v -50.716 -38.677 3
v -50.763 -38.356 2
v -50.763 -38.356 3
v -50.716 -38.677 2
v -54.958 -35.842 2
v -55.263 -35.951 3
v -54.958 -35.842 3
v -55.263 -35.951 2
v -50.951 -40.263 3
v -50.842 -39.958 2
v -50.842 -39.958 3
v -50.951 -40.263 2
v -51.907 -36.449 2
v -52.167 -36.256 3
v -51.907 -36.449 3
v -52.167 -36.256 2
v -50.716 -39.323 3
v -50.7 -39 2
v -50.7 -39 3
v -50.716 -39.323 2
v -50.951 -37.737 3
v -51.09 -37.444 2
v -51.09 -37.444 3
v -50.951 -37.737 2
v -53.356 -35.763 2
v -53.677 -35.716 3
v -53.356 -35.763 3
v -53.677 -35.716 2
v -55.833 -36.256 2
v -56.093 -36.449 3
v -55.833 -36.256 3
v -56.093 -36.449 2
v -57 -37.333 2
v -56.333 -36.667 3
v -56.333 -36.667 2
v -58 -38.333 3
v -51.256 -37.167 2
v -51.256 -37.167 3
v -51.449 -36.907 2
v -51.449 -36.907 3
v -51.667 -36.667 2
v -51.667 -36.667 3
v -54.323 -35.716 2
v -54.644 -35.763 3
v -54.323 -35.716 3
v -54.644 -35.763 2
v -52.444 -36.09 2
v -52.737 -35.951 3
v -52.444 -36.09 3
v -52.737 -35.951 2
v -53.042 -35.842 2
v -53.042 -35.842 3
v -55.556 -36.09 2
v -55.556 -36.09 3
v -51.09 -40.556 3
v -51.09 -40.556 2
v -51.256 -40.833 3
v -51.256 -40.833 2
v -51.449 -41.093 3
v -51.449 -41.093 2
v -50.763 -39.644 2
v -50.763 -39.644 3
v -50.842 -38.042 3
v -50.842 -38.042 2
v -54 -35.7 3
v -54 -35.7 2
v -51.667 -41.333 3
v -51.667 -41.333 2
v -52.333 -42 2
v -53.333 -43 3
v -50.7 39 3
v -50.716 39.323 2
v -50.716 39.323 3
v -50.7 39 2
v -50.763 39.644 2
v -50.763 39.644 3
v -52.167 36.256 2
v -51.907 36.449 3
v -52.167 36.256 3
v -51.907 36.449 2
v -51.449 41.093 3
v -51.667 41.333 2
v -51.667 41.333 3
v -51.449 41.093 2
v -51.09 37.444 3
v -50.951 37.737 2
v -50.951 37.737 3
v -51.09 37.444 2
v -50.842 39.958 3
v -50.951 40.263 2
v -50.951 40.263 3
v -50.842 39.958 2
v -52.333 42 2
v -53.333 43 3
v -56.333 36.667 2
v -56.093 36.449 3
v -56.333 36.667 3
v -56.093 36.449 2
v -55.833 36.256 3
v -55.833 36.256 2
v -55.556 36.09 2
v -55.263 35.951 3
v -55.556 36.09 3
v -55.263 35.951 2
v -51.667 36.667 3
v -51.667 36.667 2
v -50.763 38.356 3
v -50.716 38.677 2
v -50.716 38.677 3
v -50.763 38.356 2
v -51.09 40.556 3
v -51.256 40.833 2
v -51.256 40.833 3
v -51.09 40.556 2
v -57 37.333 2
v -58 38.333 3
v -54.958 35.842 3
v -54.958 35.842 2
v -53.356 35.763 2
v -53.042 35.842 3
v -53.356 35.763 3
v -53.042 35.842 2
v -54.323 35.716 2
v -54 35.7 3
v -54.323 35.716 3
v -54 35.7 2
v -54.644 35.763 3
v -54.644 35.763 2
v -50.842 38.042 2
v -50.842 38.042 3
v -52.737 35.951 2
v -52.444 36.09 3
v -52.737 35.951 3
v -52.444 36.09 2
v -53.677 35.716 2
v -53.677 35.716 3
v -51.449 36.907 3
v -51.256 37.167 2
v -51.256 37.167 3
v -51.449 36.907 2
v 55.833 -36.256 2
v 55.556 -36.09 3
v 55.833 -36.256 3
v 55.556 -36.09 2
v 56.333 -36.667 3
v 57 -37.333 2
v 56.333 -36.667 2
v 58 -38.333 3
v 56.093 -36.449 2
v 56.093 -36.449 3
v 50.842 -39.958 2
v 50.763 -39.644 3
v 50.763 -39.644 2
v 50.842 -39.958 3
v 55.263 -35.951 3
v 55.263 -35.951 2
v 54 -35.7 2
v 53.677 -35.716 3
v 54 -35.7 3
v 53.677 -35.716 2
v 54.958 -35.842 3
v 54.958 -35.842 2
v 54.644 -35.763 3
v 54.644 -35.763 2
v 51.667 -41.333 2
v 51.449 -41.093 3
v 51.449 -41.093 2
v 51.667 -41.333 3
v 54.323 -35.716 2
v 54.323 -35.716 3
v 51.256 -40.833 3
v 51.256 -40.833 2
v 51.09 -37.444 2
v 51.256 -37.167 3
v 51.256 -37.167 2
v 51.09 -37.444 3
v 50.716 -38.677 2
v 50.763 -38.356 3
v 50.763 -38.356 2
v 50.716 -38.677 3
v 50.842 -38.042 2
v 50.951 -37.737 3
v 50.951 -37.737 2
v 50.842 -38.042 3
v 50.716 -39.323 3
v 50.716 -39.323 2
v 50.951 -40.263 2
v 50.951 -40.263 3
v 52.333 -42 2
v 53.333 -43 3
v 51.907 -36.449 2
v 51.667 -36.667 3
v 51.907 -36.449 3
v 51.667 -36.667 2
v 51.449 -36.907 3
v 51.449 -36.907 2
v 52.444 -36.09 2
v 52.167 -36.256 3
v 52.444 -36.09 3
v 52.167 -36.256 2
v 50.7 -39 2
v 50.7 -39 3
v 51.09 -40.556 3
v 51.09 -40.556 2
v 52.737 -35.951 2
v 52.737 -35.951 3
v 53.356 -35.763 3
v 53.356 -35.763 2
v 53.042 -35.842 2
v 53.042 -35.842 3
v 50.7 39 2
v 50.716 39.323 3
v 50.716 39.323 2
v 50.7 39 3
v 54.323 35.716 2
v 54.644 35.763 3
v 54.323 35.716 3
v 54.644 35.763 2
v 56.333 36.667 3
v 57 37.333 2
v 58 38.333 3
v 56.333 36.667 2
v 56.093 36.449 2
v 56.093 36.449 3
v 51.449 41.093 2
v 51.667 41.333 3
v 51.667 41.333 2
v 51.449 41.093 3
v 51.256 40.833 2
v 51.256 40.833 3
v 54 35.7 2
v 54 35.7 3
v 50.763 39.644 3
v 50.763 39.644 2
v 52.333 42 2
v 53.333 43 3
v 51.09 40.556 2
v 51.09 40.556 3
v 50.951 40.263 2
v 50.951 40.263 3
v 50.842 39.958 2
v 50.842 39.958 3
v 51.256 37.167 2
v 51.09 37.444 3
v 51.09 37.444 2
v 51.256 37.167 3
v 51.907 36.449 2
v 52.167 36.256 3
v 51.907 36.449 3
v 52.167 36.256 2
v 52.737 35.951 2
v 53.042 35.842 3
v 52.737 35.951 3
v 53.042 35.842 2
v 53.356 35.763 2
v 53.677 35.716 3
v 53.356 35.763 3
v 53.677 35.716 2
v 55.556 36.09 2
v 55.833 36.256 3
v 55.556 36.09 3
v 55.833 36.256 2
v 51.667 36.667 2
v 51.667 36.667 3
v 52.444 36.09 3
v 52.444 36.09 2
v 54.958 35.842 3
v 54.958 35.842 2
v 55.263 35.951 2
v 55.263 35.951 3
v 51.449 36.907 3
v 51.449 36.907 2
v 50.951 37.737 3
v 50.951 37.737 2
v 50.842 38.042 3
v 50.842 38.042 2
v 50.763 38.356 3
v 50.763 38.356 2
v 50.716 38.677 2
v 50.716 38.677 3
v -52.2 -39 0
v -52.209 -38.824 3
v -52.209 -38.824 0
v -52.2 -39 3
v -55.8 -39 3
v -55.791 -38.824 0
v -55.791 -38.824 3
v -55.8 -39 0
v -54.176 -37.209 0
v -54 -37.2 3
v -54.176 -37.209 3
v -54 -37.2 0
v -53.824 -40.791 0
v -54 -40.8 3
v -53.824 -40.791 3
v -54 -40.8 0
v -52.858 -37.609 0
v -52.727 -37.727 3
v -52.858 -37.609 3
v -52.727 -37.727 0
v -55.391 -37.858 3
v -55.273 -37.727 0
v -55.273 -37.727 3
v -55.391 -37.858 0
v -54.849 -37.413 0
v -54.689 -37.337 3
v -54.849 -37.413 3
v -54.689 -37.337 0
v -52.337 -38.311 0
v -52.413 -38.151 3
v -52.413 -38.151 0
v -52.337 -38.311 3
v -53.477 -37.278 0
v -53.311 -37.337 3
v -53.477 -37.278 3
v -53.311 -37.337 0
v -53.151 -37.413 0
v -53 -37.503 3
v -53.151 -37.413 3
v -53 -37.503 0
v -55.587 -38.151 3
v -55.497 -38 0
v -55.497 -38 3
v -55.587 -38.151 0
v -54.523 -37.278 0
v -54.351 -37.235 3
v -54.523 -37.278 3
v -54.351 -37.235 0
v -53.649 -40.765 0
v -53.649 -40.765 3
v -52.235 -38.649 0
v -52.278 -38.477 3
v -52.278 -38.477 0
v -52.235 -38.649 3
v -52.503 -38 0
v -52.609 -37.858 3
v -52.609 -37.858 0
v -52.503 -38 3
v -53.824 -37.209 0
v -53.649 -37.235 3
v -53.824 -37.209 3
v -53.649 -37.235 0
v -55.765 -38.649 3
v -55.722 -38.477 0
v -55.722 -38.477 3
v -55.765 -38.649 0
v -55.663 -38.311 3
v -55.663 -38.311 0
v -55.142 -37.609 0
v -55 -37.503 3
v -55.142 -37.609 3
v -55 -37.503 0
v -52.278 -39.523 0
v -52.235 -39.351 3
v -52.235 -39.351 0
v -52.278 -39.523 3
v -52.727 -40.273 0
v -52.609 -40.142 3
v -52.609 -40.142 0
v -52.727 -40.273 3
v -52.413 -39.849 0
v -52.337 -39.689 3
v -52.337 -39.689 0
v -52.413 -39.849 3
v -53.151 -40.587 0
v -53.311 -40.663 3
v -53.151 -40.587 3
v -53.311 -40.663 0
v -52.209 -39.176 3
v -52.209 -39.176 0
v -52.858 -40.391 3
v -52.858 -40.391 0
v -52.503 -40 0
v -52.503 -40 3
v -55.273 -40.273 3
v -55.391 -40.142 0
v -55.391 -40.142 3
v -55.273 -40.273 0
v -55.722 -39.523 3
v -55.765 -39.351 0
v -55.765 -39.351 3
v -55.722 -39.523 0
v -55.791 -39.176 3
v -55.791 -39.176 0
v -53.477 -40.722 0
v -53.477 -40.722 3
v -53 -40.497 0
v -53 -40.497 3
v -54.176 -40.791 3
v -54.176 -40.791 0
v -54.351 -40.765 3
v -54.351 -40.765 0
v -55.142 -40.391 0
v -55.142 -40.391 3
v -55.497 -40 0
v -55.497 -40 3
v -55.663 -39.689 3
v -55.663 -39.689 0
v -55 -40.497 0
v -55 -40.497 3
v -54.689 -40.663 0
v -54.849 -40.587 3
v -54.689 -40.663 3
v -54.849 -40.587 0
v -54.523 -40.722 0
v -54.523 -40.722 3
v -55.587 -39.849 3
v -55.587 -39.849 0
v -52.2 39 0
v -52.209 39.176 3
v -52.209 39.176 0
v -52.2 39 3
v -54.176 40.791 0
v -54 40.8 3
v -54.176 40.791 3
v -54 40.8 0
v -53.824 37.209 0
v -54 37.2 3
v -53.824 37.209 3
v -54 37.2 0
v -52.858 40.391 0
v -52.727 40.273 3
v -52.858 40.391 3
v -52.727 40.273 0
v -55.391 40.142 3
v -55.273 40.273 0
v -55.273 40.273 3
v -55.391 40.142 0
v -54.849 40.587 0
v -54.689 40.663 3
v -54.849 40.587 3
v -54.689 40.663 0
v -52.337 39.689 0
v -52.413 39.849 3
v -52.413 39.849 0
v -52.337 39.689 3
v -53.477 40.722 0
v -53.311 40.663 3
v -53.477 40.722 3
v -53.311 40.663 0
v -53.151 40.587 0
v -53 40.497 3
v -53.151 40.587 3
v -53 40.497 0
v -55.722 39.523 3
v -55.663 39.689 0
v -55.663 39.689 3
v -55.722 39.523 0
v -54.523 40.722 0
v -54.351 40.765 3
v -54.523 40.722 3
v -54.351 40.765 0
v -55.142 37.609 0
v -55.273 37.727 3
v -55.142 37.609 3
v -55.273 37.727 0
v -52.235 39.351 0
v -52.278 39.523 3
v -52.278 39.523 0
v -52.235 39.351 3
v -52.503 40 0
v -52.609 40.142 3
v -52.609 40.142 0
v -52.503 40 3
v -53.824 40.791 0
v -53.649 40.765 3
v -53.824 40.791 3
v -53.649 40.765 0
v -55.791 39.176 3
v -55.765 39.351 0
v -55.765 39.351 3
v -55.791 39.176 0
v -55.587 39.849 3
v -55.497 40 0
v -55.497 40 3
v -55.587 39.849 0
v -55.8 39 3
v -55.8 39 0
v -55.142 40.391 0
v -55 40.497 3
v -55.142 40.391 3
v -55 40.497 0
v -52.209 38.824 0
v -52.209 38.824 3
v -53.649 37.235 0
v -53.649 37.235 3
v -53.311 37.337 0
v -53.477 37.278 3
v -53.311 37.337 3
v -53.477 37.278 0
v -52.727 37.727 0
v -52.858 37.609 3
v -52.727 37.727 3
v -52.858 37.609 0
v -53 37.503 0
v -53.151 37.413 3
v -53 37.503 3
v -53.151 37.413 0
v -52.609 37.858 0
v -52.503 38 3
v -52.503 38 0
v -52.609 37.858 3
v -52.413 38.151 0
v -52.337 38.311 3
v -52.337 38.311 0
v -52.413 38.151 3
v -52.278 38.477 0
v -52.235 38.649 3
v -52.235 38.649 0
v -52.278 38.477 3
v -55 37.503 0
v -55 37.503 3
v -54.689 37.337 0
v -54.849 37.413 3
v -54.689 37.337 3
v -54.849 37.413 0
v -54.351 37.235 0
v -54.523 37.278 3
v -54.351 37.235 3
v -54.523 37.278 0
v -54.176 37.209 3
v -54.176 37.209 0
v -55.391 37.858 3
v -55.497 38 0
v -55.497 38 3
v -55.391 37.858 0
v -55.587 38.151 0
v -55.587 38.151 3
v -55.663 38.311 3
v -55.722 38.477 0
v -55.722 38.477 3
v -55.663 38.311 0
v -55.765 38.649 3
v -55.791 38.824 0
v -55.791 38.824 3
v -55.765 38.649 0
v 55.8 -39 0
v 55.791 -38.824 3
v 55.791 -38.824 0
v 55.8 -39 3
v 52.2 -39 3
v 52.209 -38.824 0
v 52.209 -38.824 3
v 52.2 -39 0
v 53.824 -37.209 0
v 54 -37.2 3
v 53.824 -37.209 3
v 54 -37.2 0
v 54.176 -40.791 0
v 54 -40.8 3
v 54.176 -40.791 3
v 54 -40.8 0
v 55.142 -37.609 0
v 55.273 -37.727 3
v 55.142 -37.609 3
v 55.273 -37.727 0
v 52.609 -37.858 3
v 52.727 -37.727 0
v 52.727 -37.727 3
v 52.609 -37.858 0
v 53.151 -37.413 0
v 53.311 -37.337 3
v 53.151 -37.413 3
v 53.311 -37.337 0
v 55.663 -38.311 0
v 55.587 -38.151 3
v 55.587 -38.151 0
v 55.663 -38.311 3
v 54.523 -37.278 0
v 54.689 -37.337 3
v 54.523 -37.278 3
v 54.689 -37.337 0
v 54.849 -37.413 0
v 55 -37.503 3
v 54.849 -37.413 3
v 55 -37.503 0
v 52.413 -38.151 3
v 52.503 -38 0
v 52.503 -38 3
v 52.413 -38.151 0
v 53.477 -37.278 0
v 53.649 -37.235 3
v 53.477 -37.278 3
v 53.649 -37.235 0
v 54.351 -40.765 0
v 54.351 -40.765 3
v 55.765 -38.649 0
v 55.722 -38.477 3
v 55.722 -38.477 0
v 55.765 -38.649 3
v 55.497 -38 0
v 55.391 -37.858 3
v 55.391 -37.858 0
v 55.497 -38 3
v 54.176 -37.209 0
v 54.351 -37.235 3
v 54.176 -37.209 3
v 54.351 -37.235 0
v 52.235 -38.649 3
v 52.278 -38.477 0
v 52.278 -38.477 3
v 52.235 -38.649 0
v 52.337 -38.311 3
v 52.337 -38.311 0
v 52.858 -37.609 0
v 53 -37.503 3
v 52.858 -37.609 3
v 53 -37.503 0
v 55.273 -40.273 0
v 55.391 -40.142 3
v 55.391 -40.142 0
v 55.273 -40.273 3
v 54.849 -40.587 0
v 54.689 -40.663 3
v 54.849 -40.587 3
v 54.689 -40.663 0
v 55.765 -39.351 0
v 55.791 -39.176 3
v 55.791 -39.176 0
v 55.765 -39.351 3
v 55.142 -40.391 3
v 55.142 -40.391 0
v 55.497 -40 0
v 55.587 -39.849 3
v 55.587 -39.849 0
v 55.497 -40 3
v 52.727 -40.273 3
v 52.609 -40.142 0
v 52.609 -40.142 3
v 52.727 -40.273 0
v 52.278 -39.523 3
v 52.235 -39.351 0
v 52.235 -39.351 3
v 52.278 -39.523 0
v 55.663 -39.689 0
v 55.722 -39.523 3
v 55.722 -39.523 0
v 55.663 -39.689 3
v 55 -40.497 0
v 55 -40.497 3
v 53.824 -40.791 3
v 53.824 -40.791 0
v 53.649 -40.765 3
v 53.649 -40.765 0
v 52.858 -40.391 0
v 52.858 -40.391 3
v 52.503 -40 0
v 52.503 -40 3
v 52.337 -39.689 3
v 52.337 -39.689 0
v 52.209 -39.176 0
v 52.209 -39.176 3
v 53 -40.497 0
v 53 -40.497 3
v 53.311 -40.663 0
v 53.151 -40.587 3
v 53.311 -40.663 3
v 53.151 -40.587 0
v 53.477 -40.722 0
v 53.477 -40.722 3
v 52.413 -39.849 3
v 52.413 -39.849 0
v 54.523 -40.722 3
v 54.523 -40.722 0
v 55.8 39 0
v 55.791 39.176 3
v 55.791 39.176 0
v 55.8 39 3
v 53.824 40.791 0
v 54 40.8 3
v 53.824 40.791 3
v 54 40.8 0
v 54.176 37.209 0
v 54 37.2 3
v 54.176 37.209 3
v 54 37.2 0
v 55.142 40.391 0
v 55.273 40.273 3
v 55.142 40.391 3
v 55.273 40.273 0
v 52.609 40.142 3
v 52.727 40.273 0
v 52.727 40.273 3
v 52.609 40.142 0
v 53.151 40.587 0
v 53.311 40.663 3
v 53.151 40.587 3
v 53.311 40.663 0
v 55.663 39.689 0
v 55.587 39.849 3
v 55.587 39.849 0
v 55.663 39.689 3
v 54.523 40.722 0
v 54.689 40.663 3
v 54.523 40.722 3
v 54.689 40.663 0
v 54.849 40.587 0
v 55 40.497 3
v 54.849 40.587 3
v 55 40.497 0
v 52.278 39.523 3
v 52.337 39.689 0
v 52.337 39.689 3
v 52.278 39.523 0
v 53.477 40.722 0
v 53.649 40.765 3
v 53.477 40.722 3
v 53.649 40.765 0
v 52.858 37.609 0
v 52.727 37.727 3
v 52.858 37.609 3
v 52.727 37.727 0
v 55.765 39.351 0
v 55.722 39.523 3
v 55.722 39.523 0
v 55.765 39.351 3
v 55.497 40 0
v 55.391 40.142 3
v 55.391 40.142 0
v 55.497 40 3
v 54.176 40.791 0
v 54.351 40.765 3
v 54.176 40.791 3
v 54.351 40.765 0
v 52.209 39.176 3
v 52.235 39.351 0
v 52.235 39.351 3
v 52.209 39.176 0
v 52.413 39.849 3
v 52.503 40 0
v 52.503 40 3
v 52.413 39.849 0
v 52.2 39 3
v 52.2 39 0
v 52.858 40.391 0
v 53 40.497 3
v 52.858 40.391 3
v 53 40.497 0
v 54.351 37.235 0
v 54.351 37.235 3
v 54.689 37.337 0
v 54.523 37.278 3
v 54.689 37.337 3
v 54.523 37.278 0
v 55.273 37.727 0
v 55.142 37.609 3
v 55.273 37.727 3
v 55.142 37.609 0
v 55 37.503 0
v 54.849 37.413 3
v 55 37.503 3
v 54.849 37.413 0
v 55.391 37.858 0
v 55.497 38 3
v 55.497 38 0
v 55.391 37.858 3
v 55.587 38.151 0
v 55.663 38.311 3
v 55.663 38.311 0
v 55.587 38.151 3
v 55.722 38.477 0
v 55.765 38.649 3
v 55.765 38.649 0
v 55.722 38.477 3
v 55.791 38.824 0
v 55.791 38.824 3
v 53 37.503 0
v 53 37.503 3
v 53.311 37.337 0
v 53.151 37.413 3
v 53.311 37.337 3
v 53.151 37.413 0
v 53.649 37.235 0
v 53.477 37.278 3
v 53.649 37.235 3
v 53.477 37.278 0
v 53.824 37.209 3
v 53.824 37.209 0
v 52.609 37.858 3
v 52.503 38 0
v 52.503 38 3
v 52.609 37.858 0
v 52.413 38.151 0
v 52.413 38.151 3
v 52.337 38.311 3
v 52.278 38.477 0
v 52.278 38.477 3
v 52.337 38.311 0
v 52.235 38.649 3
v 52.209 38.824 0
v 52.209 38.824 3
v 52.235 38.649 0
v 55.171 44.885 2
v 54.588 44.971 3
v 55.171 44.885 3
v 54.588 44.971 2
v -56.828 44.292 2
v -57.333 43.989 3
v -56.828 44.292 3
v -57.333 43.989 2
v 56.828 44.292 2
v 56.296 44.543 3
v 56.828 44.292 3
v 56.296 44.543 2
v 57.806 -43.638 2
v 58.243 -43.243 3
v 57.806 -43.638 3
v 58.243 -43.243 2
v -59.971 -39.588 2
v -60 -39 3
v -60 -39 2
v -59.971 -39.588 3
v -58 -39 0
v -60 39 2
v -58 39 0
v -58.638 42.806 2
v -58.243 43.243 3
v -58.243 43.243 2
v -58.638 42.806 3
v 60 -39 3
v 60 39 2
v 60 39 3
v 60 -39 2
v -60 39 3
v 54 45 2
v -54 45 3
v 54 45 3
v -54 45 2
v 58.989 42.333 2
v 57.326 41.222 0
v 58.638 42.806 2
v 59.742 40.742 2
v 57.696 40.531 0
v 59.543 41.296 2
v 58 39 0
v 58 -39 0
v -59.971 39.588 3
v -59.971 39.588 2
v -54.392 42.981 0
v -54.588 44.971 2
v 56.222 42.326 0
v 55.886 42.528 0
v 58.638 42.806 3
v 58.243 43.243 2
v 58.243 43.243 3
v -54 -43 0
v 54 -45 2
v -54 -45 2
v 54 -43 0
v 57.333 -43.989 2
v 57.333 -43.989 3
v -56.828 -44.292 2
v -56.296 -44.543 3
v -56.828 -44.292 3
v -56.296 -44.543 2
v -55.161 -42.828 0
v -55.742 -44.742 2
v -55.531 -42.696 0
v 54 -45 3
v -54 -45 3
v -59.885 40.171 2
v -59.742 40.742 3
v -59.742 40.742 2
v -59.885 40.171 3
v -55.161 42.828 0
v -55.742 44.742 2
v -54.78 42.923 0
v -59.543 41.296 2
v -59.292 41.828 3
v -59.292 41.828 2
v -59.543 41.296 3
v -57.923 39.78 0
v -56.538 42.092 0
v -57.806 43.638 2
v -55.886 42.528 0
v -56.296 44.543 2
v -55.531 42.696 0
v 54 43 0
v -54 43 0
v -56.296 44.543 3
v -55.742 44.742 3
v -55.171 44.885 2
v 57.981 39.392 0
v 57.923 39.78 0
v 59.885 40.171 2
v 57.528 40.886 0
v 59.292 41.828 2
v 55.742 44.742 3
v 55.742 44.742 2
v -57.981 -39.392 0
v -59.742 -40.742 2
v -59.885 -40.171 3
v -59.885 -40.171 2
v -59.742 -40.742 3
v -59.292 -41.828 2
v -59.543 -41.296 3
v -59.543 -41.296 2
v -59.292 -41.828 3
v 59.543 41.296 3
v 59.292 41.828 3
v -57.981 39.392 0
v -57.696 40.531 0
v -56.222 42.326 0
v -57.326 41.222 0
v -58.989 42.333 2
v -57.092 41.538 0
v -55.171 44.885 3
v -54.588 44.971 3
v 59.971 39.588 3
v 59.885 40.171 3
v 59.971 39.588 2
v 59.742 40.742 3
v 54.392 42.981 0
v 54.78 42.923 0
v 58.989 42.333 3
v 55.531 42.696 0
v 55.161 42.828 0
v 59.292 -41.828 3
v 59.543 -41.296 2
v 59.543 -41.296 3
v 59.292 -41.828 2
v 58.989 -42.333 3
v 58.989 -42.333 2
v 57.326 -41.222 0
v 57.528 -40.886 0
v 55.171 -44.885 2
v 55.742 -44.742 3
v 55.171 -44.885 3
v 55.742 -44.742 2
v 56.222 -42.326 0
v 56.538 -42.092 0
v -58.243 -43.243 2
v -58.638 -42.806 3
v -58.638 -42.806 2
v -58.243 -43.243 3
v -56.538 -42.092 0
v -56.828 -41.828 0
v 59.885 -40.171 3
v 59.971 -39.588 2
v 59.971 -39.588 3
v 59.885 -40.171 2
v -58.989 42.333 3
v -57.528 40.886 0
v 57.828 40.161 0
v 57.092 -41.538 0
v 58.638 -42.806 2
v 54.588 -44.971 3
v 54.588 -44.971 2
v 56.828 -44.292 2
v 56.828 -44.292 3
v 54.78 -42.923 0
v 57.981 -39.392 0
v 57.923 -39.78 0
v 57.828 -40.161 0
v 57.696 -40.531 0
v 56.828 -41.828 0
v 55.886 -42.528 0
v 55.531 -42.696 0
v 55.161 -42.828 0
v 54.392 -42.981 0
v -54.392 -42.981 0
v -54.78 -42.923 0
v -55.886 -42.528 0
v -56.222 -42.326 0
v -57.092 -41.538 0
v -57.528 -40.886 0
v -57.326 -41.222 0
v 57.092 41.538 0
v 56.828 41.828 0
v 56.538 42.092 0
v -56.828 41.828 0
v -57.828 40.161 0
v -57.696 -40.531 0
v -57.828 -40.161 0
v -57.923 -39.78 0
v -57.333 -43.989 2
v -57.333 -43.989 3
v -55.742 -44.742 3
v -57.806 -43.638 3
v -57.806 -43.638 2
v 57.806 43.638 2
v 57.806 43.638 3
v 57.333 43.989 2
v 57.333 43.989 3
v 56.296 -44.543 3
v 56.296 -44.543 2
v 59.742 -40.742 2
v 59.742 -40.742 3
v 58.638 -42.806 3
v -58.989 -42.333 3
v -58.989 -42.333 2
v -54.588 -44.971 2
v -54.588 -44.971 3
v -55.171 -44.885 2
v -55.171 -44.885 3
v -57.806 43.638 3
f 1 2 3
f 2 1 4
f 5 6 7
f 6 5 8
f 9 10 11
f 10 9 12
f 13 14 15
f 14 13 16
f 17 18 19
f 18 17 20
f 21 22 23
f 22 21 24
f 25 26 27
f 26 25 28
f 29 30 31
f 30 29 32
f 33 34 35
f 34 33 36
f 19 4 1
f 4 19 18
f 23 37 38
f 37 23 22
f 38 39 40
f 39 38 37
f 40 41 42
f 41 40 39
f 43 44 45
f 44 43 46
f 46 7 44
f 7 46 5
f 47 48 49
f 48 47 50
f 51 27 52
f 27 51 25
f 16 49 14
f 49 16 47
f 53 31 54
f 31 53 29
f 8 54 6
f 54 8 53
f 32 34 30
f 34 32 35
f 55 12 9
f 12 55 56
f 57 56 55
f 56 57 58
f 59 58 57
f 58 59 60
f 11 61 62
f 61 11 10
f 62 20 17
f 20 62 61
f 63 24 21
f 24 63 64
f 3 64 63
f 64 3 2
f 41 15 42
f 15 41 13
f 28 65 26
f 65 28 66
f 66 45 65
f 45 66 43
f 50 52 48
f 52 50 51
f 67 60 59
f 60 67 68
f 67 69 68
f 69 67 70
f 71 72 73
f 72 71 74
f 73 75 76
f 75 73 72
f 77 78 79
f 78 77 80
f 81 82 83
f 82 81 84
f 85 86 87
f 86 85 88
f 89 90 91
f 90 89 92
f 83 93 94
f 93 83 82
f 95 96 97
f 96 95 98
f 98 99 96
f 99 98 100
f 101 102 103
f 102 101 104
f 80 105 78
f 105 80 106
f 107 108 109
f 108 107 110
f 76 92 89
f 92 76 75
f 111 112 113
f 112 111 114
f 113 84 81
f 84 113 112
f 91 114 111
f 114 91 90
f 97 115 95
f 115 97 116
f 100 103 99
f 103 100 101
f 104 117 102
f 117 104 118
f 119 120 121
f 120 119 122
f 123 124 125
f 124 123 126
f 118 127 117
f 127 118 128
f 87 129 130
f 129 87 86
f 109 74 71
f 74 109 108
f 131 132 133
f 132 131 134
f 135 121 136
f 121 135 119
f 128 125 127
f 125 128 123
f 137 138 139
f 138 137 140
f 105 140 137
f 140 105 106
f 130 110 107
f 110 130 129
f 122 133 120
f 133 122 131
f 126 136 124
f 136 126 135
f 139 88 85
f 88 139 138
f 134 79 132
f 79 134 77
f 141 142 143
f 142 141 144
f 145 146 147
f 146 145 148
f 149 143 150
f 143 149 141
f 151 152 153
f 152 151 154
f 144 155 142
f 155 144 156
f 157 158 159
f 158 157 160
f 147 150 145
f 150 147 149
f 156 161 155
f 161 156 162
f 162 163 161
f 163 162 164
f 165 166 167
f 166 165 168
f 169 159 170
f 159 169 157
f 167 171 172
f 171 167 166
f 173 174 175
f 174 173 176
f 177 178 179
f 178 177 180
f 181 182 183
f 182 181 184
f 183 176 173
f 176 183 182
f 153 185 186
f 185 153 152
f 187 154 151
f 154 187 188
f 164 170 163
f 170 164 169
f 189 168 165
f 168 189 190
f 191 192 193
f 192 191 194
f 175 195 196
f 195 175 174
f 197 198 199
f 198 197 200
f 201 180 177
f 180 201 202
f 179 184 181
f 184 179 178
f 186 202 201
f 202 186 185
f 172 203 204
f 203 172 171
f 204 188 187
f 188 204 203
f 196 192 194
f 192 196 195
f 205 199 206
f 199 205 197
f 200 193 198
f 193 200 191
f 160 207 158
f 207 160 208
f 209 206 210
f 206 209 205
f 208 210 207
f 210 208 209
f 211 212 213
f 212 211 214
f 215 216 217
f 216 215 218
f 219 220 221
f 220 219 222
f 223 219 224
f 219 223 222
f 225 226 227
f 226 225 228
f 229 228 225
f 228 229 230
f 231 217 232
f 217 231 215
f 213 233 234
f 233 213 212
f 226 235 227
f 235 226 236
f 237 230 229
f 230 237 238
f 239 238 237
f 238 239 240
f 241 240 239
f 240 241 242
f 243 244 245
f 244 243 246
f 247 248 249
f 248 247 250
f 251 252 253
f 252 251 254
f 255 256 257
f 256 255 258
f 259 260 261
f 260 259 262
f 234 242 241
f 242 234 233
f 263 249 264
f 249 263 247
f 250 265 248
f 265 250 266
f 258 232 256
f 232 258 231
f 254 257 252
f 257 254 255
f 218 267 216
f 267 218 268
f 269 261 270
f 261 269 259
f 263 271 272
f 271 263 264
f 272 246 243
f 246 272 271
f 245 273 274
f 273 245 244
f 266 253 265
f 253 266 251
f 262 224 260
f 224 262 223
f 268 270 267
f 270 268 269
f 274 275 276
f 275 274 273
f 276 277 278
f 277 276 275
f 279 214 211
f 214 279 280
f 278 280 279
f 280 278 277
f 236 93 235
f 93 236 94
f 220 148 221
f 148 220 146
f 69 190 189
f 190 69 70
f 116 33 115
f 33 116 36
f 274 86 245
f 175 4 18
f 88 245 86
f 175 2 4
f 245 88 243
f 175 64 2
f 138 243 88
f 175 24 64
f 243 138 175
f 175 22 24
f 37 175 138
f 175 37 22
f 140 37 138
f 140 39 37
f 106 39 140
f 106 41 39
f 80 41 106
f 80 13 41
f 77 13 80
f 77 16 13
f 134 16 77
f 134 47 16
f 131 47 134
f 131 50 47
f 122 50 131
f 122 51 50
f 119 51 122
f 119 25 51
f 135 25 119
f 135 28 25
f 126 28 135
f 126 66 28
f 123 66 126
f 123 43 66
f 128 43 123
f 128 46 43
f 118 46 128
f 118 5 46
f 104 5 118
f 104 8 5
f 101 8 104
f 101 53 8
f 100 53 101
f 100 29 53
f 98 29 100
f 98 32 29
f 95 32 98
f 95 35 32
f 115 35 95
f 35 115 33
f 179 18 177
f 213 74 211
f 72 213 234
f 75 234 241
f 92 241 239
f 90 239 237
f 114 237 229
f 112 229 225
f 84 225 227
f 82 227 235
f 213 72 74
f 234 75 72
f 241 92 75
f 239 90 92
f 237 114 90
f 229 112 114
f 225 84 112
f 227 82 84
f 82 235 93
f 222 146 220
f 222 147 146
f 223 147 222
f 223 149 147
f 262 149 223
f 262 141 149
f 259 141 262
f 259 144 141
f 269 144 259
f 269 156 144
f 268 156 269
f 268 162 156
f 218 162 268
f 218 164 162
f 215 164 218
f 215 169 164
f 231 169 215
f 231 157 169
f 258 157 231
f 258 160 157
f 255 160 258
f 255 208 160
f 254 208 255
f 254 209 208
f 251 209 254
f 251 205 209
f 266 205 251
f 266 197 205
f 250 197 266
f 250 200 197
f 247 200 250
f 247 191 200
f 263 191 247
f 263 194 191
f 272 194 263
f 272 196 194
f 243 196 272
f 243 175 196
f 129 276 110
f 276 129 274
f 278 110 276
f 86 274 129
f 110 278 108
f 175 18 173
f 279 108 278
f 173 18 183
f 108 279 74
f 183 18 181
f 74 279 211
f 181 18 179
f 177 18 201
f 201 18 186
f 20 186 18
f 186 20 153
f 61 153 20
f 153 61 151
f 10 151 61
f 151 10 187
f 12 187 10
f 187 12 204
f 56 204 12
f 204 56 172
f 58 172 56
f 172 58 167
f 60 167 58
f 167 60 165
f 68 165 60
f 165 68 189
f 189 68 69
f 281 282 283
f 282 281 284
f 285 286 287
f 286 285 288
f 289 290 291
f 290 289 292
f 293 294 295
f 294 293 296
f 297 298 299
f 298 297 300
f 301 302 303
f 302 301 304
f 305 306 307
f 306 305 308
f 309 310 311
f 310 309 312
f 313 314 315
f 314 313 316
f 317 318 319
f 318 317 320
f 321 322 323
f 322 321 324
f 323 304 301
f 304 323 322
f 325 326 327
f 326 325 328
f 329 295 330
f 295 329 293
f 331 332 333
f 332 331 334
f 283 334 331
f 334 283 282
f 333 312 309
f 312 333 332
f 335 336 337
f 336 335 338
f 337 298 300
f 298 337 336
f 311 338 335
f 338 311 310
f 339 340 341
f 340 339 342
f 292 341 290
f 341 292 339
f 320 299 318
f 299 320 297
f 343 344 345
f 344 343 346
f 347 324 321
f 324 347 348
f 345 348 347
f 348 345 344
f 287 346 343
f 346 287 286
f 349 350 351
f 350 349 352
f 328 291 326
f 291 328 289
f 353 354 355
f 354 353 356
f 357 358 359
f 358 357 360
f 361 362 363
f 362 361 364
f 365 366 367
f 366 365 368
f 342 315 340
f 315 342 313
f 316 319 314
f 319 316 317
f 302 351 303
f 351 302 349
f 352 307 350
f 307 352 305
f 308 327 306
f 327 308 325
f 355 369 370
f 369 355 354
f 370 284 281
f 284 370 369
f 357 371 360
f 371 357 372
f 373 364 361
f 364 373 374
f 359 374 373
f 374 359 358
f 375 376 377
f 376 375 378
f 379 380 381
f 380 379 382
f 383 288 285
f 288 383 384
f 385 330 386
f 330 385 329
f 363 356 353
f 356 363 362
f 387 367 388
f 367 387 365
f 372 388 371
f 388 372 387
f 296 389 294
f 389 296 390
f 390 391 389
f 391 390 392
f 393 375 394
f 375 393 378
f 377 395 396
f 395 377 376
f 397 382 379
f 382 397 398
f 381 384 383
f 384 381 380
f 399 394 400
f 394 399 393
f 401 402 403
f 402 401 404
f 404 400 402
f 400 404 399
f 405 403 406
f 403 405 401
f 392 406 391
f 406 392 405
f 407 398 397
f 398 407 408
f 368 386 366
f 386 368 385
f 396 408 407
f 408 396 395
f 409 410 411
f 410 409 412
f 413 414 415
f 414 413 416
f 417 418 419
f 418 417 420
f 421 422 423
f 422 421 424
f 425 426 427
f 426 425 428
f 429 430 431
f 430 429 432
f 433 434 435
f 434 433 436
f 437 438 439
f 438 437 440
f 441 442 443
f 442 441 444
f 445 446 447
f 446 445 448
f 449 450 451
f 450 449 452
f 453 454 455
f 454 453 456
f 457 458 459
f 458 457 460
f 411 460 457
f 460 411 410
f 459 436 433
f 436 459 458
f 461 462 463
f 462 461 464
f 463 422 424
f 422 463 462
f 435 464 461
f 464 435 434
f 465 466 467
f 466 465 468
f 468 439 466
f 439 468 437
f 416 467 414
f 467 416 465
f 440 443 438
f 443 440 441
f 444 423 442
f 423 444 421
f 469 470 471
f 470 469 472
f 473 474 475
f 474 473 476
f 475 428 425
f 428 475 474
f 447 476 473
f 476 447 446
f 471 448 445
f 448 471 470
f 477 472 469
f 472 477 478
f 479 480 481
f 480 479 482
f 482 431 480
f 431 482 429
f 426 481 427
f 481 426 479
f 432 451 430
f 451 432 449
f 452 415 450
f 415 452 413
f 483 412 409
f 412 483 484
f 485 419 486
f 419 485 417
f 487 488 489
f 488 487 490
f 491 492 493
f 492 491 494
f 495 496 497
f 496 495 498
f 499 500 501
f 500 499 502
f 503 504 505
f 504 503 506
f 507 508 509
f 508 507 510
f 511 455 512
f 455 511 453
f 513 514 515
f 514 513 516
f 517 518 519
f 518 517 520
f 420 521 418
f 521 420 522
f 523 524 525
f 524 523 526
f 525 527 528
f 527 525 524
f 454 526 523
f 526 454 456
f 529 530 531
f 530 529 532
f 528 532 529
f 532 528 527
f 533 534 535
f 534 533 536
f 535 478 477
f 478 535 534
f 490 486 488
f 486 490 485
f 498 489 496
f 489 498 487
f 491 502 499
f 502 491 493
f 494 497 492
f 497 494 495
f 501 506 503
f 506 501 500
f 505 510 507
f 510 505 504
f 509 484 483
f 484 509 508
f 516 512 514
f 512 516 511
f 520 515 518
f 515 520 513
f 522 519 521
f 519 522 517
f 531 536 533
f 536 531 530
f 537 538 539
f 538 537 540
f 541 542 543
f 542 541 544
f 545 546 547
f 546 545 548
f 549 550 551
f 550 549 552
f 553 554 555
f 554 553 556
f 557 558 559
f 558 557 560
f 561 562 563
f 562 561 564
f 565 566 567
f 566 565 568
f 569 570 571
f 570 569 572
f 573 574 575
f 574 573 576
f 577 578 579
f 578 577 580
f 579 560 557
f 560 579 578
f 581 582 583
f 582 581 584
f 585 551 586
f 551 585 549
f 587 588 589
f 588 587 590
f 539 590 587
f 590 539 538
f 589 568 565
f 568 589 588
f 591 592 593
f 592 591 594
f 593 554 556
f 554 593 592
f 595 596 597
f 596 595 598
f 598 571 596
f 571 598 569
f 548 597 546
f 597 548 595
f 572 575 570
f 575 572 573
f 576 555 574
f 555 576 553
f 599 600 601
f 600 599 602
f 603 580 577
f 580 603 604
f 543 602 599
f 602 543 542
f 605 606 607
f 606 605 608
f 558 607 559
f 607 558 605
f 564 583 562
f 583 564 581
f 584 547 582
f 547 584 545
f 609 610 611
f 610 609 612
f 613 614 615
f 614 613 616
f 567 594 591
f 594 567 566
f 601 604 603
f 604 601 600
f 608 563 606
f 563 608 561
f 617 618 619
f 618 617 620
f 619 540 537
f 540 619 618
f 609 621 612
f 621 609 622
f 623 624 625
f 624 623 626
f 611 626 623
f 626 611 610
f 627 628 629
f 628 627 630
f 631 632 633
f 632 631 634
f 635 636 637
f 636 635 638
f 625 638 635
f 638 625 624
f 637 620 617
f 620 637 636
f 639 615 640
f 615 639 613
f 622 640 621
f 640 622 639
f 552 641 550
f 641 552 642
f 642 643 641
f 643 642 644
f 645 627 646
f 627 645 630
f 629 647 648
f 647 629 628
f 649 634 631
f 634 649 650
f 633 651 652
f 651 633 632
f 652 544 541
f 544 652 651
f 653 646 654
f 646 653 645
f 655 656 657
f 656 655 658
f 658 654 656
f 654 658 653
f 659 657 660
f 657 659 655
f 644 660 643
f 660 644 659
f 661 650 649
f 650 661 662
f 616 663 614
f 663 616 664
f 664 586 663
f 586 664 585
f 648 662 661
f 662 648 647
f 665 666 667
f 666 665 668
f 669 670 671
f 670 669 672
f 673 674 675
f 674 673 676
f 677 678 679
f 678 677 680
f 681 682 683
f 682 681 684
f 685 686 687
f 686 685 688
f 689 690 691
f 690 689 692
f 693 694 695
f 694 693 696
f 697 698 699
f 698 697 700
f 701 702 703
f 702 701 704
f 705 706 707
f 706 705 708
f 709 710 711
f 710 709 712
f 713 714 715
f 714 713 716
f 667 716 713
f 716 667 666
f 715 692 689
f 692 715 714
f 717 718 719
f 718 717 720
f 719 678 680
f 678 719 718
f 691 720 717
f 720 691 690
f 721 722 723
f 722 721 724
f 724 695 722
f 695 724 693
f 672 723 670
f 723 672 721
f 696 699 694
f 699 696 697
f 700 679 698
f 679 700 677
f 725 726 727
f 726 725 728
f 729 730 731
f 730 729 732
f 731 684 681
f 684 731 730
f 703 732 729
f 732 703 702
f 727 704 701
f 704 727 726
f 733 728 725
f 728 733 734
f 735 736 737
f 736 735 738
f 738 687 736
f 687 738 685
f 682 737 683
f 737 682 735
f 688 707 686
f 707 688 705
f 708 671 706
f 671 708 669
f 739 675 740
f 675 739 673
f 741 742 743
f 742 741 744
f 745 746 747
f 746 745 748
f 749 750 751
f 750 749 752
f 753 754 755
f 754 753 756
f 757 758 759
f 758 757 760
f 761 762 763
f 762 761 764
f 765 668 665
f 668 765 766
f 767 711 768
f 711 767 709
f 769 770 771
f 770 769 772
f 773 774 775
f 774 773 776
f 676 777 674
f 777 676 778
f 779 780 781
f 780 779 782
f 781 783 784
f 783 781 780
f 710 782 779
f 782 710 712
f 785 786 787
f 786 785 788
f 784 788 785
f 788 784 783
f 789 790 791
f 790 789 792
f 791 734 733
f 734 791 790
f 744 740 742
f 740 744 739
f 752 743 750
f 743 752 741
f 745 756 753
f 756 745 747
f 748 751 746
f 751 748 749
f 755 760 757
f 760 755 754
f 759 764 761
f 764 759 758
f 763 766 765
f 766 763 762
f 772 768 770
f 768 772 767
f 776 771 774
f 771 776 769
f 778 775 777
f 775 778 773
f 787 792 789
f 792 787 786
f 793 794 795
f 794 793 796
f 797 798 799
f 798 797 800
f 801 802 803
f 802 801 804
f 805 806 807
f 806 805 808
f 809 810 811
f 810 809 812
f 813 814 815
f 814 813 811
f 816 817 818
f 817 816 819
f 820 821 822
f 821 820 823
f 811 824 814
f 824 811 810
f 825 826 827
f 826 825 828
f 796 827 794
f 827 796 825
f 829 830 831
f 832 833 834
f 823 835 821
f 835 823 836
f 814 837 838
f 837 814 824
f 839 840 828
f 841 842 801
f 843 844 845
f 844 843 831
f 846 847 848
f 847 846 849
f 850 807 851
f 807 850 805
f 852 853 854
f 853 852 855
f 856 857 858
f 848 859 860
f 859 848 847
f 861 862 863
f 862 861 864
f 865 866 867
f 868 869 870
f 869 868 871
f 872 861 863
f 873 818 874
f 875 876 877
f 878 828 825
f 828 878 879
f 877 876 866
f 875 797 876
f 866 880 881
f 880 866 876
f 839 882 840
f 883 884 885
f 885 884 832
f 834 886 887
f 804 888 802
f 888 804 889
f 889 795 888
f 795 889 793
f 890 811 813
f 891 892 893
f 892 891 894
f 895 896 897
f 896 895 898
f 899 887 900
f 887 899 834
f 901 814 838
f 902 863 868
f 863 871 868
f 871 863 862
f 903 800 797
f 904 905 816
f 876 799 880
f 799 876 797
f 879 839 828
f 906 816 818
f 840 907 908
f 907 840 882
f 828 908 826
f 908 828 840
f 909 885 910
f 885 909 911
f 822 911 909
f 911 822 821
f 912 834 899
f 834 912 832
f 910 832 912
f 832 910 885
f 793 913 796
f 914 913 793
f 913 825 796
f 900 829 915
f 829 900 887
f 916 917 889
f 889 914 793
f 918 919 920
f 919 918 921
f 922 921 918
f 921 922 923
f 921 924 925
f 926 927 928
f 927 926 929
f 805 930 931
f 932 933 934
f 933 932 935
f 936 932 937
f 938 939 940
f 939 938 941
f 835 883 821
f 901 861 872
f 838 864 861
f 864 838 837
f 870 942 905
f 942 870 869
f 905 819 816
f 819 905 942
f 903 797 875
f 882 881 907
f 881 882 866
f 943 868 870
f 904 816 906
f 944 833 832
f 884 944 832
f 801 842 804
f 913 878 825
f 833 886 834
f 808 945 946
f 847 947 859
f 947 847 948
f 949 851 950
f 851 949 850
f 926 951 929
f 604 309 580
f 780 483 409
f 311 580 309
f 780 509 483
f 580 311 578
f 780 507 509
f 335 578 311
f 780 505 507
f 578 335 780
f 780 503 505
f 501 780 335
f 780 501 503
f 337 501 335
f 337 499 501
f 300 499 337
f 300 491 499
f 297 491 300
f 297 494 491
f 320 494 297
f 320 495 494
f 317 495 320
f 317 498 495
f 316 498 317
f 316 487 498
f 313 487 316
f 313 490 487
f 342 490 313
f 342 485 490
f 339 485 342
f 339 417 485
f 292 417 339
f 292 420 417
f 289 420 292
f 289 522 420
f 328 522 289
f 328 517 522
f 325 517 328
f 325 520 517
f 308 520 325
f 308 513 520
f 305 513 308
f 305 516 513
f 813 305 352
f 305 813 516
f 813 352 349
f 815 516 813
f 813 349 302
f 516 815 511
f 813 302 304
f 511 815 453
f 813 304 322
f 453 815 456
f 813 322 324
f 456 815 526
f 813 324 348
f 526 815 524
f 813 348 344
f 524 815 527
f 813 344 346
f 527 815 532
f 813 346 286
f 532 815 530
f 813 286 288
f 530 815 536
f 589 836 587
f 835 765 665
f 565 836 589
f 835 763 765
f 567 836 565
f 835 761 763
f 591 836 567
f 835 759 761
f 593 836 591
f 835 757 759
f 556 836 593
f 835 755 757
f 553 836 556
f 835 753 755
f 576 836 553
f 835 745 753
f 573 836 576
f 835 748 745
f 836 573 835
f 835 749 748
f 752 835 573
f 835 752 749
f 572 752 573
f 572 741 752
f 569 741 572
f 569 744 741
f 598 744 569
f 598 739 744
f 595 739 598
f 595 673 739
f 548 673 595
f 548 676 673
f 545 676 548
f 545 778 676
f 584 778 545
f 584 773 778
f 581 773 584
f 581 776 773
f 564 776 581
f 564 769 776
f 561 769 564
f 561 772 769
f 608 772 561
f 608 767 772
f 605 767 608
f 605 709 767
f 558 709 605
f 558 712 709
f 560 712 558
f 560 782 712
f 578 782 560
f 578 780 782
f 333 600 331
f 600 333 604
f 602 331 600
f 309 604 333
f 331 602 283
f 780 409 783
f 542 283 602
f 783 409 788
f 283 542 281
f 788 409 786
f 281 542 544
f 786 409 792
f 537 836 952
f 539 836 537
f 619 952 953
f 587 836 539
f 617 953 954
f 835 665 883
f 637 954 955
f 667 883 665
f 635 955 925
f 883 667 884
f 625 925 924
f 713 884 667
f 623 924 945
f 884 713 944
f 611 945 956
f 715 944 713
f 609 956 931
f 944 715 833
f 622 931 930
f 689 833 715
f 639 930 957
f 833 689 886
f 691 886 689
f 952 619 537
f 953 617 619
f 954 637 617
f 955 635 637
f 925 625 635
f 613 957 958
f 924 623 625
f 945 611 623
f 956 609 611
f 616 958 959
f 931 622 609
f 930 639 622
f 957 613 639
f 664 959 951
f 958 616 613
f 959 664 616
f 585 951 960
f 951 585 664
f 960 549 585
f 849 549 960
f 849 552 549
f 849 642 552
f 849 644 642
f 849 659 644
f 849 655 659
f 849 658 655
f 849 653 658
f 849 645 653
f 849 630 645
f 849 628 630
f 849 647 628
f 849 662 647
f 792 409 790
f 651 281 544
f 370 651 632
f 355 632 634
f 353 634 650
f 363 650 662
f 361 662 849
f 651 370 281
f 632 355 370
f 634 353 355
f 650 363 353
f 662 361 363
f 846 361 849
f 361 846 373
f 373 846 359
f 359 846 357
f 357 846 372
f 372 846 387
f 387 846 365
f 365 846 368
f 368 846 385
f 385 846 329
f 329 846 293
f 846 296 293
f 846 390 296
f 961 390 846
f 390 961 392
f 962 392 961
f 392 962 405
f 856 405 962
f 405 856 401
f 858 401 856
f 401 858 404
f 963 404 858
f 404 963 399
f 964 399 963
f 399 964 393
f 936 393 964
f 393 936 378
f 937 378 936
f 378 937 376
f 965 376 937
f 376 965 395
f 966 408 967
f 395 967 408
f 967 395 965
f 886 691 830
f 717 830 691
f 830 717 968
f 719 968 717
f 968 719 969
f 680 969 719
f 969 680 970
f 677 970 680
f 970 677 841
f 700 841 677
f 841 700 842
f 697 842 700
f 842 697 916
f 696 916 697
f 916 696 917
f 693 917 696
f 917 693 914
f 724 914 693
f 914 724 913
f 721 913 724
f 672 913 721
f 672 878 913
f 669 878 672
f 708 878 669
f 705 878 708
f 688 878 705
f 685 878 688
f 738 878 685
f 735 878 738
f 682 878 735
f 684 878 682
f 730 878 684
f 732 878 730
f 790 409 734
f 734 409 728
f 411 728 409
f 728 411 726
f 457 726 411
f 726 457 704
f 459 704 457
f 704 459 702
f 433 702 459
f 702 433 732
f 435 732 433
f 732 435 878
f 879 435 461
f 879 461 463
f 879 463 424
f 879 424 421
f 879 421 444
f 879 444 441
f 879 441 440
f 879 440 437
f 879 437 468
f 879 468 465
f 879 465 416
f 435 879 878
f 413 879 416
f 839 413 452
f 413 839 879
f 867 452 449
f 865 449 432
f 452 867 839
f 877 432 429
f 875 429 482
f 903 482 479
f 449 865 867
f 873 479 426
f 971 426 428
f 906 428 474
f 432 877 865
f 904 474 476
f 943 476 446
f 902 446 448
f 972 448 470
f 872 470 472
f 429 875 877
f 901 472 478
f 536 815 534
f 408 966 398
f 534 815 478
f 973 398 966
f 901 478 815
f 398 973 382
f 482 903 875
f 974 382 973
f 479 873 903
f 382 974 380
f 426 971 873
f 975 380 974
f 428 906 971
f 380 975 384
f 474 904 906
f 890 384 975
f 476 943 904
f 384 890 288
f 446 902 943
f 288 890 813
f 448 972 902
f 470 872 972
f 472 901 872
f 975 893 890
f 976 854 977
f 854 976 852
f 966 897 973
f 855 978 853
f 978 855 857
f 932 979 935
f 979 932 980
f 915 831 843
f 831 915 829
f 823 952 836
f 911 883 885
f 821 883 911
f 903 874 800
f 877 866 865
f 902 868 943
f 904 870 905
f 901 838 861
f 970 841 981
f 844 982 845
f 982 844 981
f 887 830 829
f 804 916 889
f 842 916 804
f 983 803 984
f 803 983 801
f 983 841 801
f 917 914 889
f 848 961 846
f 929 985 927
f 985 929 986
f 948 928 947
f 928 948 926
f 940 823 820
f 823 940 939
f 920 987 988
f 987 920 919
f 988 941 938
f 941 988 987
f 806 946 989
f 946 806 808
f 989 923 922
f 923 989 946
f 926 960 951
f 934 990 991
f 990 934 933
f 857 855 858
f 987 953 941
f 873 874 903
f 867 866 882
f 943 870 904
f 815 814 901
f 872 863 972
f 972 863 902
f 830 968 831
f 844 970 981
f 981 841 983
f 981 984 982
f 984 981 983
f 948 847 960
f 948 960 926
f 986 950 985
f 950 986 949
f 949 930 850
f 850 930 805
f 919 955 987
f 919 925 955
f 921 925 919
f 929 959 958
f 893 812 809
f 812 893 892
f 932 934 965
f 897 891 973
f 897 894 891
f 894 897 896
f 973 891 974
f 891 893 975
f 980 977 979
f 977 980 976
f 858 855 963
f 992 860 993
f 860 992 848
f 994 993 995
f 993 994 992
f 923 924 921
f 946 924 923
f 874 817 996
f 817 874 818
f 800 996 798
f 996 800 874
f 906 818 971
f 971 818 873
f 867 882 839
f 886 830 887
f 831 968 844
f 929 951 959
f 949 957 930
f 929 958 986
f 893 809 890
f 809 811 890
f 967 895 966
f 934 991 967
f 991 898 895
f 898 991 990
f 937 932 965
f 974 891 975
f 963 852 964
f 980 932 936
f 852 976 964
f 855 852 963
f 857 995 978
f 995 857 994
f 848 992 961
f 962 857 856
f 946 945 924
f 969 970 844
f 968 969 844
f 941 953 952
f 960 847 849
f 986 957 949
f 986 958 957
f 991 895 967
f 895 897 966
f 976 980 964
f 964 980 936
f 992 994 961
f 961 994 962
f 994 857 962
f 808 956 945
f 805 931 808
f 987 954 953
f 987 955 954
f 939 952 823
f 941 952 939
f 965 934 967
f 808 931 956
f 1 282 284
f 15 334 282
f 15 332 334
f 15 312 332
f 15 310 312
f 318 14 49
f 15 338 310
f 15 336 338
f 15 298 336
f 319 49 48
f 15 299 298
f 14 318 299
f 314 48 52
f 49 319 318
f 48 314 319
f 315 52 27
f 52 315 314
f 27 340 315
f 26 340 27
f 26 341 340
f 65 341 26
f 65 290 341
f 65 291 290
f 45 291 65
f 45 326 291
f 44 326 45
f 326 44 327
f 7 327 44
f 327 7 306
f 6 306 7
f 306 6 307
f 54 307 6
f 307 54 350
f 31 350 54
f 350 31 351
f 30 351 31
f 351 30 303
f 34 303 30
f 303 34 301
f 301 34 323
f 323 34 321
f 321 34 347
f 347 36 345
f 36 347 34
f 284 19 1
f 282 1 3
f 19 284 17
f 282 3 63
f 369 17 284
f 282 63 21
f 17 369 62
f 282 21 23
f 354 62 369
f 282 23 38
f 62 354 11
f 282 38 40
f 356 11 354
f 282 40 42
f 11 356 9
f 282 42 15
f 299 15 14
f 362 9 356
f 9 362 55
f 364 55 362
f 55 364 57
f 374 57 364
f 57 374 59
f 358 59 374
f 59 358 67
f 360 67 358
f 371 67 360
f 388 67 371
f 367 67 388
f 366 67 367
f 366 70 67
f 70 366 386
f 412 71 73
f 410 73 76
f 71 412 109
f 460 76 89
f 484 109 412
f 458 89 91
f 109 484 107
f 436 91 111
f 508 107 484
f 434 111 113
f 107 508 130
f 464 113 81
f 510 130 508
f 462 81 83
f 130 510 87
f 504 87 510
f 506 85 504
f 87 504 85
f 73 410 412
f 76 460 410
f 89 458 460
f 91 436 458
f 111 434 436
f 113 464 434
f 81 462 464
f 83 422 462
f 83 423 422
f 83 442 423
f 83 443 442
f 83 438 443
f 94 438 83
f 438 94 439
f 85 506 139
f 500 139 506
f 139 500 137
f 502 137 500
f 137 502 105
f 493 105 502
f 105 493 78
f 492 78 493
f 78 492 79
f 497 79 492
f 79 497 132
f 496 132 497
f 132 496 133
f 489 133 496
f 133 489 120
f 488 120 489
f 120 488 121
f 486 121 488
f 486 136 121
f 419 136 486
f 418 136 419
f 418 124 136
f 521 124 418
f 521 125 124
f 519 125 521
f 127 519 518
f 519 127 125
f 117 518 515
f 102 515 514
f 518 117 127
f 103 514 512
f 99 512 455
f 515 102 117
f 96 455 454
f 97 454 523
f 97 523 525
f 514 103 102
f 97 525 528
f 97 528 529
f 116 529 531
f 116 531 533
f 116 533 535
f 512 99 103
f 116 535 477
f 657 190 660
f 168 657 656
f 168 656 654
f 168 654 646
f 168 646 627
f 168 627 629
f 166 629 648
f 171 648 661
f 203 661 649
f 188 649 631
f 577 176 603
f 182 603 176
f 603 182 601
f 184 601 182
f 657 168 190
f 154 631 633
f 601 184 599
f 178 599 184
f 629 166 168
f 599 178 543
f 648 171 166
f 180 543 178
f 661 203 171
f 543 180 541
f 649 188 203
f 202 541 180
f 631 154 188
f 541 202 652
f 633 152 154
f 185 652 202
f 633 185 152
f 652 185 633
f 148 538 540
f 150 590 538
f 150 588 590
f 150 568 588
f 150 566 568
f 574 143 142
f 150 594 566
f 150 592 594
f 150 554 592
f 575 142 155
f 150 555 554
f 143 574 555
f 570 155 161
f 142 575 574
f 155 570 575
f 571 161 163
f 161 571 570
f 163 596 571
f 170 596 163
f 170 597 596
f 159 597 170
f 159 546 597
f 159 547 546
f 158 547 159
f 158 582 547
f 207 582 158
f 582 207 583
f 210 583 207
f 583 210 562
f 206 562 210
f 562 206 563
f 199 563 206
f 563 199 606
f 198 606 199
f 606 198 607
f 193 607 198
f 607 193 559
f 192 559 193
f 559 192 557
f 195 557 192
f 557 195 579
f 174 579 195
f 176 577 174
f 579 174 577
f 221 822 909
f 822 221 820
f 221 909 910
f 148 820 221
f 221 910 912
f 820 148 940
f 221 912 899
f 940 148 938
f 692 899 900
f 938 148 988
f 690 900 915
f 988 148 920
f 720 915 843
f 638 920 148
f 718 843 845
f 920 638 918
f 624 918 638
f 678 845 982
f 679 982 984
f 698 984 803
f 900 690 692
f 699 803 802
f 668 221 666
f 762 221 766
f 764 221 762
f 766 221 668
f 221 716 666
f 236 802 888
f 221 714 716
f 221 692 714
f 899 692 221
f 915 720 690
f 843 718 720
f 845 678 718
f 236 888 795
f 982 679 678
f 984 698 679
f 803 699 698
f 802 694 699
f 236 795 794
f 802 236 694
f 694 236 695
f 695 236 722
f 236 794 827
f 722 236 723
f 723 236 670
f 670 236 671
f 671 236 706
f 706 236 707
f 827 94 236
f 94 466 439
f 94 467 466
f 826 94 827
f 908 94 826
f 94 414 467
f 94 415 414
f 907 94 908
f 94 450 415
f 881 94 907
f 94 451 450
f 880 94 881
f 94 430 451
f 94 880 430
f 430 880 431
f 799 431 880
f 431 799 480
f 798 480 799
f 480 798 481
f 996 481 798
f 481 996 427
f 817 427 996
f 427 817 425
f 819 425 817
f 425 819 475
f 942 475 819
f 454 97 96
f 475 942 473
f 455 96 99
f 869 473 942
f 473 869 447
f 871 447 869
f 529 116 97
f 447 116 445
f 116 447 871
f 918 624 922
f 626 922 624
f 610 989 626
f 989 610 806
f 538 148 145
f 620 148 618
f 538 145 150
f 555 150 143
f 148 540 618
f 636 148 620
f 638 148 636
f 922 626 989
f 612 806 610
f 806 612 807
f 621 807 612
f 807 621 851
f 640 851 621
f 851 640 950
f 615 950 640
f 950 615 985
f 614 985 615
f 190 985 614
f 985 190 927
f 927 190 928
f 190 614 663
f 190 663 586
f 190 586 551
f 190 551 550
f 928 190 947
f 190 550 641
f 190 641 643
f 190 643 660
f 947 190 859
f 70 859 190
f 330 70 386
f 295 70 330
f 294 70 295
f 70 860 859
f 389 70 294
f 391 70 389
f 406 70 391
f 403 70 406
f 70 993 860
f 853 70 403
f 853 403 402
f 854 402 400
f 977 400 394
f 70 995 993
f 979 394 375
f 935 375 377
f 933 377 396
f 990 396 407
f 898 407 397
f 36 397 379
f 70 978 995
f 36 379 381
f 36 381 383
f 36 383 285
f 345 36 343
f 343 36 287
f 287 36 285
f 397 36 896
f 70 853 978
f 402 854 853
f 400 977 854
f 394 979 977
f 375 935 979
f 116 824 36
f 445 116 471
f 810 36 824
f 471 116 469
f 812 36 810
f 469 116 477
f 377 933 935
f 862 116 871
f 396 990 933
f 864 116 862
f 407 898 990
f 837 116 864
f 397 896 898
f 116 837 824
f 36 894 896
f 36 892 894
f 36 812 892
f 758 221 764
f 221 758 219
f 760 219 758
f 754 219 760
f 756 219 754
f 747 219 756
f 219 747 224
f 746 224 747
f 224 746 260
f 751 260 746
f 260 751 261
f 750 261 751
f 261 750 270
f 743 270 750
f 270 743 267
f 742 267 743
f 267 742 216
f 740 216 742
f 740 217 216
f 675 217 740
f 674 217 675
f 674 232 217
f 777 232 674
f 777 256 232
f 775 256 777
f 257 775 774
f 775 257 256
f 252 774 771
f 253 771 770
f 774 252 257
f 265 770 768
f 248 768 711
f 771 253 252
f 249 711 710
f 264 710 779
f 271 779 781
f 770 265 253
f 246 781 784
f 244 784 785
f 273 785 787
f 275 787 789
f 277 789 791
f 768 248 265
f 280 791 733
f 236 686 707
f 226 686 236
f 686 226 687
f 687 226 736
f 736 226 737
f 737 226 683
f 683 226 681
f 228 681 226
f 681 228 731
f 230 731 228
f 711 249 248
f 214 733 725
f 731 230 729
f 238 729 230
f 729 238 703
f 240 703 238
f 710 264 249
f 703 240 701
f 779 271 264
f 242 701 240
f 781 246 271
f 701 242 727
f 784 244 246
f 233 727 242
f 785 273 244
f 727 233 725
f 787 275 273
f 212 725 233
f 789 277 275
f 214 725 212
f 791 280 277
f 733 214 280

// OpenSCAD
// file: Modules.scad
//
// Copyright (C) 2019 by Luke Hutchison
//
// Permission to use, copy, modify, and/or distribute this software for any purpose with or without
// fee is hereby granted.
// 
// THE SOFTWARE IS PROVIDED "AS IS" AND THE AUTHOR DISCLAIMS ALL WARRANTIES WITH REGARD TO THIS
// SOFTWARE INCLUDING ALL IMPLIED WARRANTIES OF MERCHANTABILITY AND FITNESS. IN NO EVENT SHALL
// THE AUTHOR BE LIABLE FOR ANY SPECIAL, DIRECT, INDIRECT, OR CONSEQUENTIAL DAMAGES OR ANY DAMAGES
// WHATSOEVER RESULTING FROM LOSS OF USE, DATA OR PROFITS, WHETHER IN AN ACTION OF CONTRACT,
// NEGLIGENCE OR OTHER TORTIOUS ACTION, ARISING OUT OF OR IN CONNECTION WITH THE USE OR PERFORMANCE
// OF THIS SOFTWARE.
//

// Create a 45-degree beveled rounded box
module beveledRoundedBox(size_x, size_y, size_z, bevel_width, corner_radius) {
    hull() {
        minkowski() {
            cube([size_x - corner_radius * 2,
                  size_y - corner_radius * 2,
                  size_z - bevel_width * 2 - 0.1],
                 center = true);
            cylinder(r = corner_radius, h = 0.1, center = true, $fn = 64);
        }
        minkowski() {
            cube([size_x - corner_radius * 2,
                  size_y - corner_radius * 2,
                  size_z - 0.1],
                center = true);
            cylinder(r = corner_radius - bevel_width, h = 0.1, center = true, $fn = 64);
        }
    }
}

// Create body of box
module boxBody(dim_x, dim_y, dim_z, wall_thickness, outer_bevel_width, inner_bevel_width, corner_radius, screw_hole_diam, screw_post_wall_thickness) {
    difference() {
        // Outer box
        beveledRoundedBox(dim_x, dim_y, dim_z, outer_bevel_width, corner_radius);
        
        // Remove inner negative space from box
        difference() {
            // Inner negative box
            beveledRoundedBox(dim_x - wall_thickness * 2,
                              dim_y - wall_thickness * 2,
                              dim_z - wall_thickness * 2,
                              inner_bevel_width,
                              corner_radius - wall_thickness);
            
            // Add screw posts (by subtracting from inner negative box)
            screw_post_r = screw_post_wall_thickness + screw_hole_diam / 2;
            for (dx = [-1:2:1]) {
                for (dy = [-1:2:1]) {
                    hull() {
                        translate([dx * (dim_x / 2 - corner_radius),
                                   dy * (dim_y / 2 - corner_radius),
                                   -(dim_z / 2 - wall_thickness)])
                            cylinder(r = screw_post_r, h = dim_z - wall_thickness * 2, $fn = 64);
                        translate([dx * (dim_x / 2 - (corner_radius - screw_post_r)),
                                   dy * (dim_y / 2 - (corner_radius - screw_post_r)),
                                   -(dim_z / 2 - wall_thickness)])
                            cylinder(r = screw_post_r, h = dim_z - wall_thickness * 2, $fn = 64);
                    }
                }
            }
        }
        
        // Remove screw holes
        for (dx = [-1:2:1]) {
            for (dy = [-1:2:1]) {
                translate([dx * (dim_x / 2 - corner_radius),
                           dy * (dim_y / 2 - corner_radius),
                           -dim_z / 2 - .1])
                    cylinder(r = screw_hole_diam / 2, h = dim_z + .2, $fn = 64);
            }
        }
    }
}

function hypot(dx, dy) = sqrt(dx * dx + dy * dy);

module roundedSquare(dim, h, r) {
    w = dim / 2 - r;
    hull() {
        translate([-w, -w, 0]) cylinder(r = r, h = h, $fn = 16); 
        translate([-w, w, 0]) cylinder(r = r, h = h, $fn = 16); 
        translate([w, -w, 0]) cylinder(r = r, h = h, $fn = 16); 
        translate([w, w, 0]) cylinder(r = r, h = h, $fn = 16); 
    }
}

// Create a grid of holes (if slotWidth == 0) or slots (if slotWidth > 0)
module createHolesOrSlots(dim_x, dim_y, dim_z, wall_thickness, corner_radius, tiedown_hole_diam,
                          tiedown_hole_spacing, slotWidth) {
    for (x = [0.5 * tiedown_hole_spacing
              : tiedown_hole_spacing
              : dim_x / 2 - wall_thickness - tiedown_hole_diam]) {
        // For this x val, find all y vals that are not too close to corner holes
        y_vals = [for (y = [0.5 * tiedown_hole_spacing
                            : tiedown_hole_spacing
                            : dim_y / 2 - wall_thickness - tiedown_hole_diam])
            if (hypot(dim_x / 2 - corner_radius - x, dim_y / 2 - corner_radius - y)
                > corner_radius + tiedown_hole_diam / 2) 
                    y];
        // Create holes (if slotWidth == 0) or slots (if slotWidth > 0)
        for (yi = [0 : slotWidth + 1 : len(y_vals) - 1]) {
            y0 = y_vals[yi];
            y1 = y_vals[min(yi + slotWidth, len(y_vals) - 1)];
            for (dx = [-1:2:1]) {
                for (dy = [-1:2:1]) {
                    hull() {
                        translate([dx * x, dy * y0, -.1])
                            roundedSquare(dim = tiedown_hole_diam, h = dim_z + .2, r = .5); 
                        translate([dx * x, dy * y1, -.1])
                            roundedSquare(dim = tiedown_hole_diam, h = dim_z + .2, r = .5); 
                    }
                }
            }
        }
    }
}
// file: Constants.scad
//
// Copyright (C) 2019 by Luke Hutchison
//
// Permission to use, copy, modify, and/or distribute this software for any purpose with or without
// fee is hereby granted.
// 
// THE SOFTWARE IS PROVIDED "AS IS" AND THE AUTHOR DISCLAIMS ALL WARRANTIES WITH REGARD TO THIS
// SOFTWARE INCLUDING ALL IMPLIED WARRANTIES OF MERCHANTABILITY AND FITNESS. IN NO EVENT SHALL
// THE AUTHOR BE LIABLE FOR ANY SPECIAL, DIRECT, INDIRECT, OR CONSEQUENTIAL DAMAGES OR ANY DAMAGES
// WHATSOEVER RESULTING FROM LOSS OF USE, DATA OR PROFITS, WHETHER IN AN ACTION OF CONTRACT,
// NEGLIGENCE OR OTHER TORTIOUS ACTION, ARISING OUT OF OR IN CONNECTION WITH THE USE OR PERFORMANCE
// OF THIS SOFTWARE.
//

// Outer dimensions of box
dim_x = 120;
dim_y = 90;
dim_z = 25;

// Wall thickness
wall_thickness = 2;

// Outer bevel width
outer_bevel_width = 2;

// Inner bevel width
inner_bevel_width = outer_bevel_width / 2;

// Lid height
lid_height = wall_thickness + inner_bevel_width;

// Rounded corner radius
corner_radius = 6;

// Screw hole diameter (Add 0.6mm for tolerance)
screw_hole_diam = 3 + 0.6;

// Screw post wall thickness
screw_post_wall_thickness = 1.5;

// Tiedown plate standoff height, plate thickness, hole diameter, hole spacing
tiedown_standoff_height = 2;
tiedown_plate_thickness = 1;
tiedown_reinforcement_thickness = 1;
tiedown_hole_diam = 3;
tiedown_hole_spacing = 4;

// Total tiedown layer thickness
tiedown_layer_thickness = tiedown_standoff_height + tiedown_plate_thickness;

// Tiedown support plate reinforcement spacing
tiedown_plate_reinforcement_spacing = 4;

// Ventilation hole/slot sizes
ventilation_hole_diam = 2.5;
ventilation_hole_spacing = 5;

// The number of adjacent ventilation holes to connect together into a ventilation slot
// (0 => crate holes; 1 or more => use slots)
ventilation_slot_width = 3;

// Cable cutouts, of the form [[face, idx, diam], ...], or an empty list for no cable cutouts.
// Cable cutouts are removed from one edge of the box, with `face` taking a value between 0 and
// 3 inclusive to indicate the side of the box to cut out from (top, right, bottom, left);
// `idx` indicating the index of the tiedown holes to cut out the cable between (idx == 0
// implies the center of the sidewall, idx == +/- 1 for the position between the next pair of
// cutout holes, etc.); and `diam` specifying the diameter of the hole.
cable_cutouts = [[0, 0, 6.75], [1, -1, 5], [1, 1, 5]];
// main file
//
// Copyright (C) 2019 by Luke Hutchison
//
// Permission to use, copy, modify, and/or distribute this software for any purpose with or without
// fee is hereby granted.
// 
// THE SOFTWARE IS PROVIDED "AS IS" AND THE AUTHOR DISCLAIMS ALL WARRANTIES WITH REGARD TO THIS
// SOFTWARE INCLUDING ALL IMPLIED WARRANTIES OF MERCHANTABILITY AND FITNESS. IN NO EVENT SHALL
// THE AUTHOR BE LIABLE FOR ANY SPECIAL, DIRECT, INDIRECT, OR CONSEQUENTIAL DAMAGES OR ANY DAMAGES
// WHATSOEVER RESULTING FROM LOSS OF USE, DATA OR PROFITS, WHETHER IN AN ACTION OF CONTRACT,
// NEGLIGENCE OR OTHER TORTIOUS ACTION, ARISING OUT OF OR IN CONNECTION WITH THE USE OR PERFORMANCE
// OF THIS SOFTWARE.
//

include <Constants.scad>;
use <Modules.scad>;

// Create a lid without ventilation holes.
module lidWithoutVentilationHoles() {
    translate([0, 0, dim_z / 2]) {
        difference() {
            boxBody(dim_x, dim_y, dim_z, wall_thickness, outer_bevel_width, inner_bevel_width,
                    corner_radius, screw_hole_diam, screw_post_wall_thickness);
            
            // Chop off non-lid part of box
            translate([0, 0, lid_height])
                cube([dim_x + .1, dim_y + .1, dim_z], center = true);
        }
    }
}

lidWithoutVentilationHoles();
